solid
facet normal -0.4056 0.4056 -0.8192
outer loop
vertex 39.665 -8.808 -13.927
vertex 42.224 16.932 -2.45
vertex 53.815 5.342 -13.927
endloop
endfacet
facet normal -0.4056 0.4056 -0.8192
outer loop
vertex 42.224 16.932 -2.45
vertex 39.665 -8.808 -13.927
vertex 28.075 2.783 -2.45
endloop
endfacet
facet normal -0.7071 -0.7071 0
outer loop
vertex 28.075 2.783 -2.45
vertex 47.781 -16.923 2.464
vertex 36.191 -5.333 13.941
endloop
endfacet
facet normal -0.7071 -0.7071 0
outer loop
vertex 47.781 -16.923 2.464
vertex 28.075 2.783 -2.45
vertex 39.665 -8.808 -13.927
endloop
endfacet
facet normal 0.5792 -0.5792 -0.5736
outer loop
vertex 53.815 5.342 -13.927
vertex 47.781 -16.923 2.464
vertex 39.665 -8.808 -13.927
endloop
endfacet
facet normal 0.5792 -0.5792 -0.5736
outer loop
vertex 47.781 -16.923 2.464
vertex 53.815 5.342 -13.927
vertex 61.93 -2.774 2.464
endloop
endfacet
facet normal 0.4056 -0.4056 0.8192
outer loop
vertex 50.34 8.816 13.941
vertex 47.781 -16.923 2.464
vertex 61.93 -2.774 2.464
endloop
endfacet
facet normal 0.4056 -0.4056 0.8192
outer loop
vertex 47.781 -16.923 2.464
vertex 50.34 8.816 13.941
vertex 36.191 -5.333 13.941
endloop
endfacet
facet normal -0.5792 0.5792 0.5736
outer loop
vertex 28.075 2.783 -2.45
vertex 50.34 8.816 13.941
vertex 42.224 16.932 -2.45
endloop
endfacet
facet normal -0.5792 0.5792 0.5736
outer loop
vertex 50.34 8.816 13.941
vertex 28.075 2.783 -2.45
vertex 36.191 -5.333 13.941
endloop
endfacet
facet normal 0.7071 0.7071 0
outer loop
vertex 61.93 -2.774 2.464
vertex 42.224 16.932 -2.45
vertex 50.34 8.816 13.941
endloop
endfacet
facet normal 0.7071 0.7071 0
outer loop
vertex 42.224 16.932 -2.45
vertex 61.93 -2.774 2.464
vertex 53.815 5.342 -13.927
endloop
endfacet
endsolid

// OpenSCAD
module subdivided_cube(size=1, center=false, dim=5) {
    // Standardize size to a 3-element vector [x, y, z]
    s = is_list(size) ? size : [size, size, size];
    
    // Calculate the translation offset if center is true
    offset = center ? [-s[0]/2, -s[1]/2, -s[2]/2] : [0, 0, 0];
    
    step_x = s[0] / dim;
    step_y = s[1] / dim;
    step_z = s[2] / dim;

    translate(offset)
    for (x = [0 : step_x : s[0] - 0.001]) {
        for (y = [0 : step_y : s[1] - 0.001]) {
            for (z = [0 : step_z : s[2] - 0.001]) {
                // 0.01 overlap ensures a single manifold object
                translate([x, y, z]) 
                    cube([step_x + 0.01, step_y + 0.01, step_z + 0.01]);
            }
        }
    }
}

translate([30+15,0,0])rotate([35,0,45])subdivided_cube(20,center=true);
